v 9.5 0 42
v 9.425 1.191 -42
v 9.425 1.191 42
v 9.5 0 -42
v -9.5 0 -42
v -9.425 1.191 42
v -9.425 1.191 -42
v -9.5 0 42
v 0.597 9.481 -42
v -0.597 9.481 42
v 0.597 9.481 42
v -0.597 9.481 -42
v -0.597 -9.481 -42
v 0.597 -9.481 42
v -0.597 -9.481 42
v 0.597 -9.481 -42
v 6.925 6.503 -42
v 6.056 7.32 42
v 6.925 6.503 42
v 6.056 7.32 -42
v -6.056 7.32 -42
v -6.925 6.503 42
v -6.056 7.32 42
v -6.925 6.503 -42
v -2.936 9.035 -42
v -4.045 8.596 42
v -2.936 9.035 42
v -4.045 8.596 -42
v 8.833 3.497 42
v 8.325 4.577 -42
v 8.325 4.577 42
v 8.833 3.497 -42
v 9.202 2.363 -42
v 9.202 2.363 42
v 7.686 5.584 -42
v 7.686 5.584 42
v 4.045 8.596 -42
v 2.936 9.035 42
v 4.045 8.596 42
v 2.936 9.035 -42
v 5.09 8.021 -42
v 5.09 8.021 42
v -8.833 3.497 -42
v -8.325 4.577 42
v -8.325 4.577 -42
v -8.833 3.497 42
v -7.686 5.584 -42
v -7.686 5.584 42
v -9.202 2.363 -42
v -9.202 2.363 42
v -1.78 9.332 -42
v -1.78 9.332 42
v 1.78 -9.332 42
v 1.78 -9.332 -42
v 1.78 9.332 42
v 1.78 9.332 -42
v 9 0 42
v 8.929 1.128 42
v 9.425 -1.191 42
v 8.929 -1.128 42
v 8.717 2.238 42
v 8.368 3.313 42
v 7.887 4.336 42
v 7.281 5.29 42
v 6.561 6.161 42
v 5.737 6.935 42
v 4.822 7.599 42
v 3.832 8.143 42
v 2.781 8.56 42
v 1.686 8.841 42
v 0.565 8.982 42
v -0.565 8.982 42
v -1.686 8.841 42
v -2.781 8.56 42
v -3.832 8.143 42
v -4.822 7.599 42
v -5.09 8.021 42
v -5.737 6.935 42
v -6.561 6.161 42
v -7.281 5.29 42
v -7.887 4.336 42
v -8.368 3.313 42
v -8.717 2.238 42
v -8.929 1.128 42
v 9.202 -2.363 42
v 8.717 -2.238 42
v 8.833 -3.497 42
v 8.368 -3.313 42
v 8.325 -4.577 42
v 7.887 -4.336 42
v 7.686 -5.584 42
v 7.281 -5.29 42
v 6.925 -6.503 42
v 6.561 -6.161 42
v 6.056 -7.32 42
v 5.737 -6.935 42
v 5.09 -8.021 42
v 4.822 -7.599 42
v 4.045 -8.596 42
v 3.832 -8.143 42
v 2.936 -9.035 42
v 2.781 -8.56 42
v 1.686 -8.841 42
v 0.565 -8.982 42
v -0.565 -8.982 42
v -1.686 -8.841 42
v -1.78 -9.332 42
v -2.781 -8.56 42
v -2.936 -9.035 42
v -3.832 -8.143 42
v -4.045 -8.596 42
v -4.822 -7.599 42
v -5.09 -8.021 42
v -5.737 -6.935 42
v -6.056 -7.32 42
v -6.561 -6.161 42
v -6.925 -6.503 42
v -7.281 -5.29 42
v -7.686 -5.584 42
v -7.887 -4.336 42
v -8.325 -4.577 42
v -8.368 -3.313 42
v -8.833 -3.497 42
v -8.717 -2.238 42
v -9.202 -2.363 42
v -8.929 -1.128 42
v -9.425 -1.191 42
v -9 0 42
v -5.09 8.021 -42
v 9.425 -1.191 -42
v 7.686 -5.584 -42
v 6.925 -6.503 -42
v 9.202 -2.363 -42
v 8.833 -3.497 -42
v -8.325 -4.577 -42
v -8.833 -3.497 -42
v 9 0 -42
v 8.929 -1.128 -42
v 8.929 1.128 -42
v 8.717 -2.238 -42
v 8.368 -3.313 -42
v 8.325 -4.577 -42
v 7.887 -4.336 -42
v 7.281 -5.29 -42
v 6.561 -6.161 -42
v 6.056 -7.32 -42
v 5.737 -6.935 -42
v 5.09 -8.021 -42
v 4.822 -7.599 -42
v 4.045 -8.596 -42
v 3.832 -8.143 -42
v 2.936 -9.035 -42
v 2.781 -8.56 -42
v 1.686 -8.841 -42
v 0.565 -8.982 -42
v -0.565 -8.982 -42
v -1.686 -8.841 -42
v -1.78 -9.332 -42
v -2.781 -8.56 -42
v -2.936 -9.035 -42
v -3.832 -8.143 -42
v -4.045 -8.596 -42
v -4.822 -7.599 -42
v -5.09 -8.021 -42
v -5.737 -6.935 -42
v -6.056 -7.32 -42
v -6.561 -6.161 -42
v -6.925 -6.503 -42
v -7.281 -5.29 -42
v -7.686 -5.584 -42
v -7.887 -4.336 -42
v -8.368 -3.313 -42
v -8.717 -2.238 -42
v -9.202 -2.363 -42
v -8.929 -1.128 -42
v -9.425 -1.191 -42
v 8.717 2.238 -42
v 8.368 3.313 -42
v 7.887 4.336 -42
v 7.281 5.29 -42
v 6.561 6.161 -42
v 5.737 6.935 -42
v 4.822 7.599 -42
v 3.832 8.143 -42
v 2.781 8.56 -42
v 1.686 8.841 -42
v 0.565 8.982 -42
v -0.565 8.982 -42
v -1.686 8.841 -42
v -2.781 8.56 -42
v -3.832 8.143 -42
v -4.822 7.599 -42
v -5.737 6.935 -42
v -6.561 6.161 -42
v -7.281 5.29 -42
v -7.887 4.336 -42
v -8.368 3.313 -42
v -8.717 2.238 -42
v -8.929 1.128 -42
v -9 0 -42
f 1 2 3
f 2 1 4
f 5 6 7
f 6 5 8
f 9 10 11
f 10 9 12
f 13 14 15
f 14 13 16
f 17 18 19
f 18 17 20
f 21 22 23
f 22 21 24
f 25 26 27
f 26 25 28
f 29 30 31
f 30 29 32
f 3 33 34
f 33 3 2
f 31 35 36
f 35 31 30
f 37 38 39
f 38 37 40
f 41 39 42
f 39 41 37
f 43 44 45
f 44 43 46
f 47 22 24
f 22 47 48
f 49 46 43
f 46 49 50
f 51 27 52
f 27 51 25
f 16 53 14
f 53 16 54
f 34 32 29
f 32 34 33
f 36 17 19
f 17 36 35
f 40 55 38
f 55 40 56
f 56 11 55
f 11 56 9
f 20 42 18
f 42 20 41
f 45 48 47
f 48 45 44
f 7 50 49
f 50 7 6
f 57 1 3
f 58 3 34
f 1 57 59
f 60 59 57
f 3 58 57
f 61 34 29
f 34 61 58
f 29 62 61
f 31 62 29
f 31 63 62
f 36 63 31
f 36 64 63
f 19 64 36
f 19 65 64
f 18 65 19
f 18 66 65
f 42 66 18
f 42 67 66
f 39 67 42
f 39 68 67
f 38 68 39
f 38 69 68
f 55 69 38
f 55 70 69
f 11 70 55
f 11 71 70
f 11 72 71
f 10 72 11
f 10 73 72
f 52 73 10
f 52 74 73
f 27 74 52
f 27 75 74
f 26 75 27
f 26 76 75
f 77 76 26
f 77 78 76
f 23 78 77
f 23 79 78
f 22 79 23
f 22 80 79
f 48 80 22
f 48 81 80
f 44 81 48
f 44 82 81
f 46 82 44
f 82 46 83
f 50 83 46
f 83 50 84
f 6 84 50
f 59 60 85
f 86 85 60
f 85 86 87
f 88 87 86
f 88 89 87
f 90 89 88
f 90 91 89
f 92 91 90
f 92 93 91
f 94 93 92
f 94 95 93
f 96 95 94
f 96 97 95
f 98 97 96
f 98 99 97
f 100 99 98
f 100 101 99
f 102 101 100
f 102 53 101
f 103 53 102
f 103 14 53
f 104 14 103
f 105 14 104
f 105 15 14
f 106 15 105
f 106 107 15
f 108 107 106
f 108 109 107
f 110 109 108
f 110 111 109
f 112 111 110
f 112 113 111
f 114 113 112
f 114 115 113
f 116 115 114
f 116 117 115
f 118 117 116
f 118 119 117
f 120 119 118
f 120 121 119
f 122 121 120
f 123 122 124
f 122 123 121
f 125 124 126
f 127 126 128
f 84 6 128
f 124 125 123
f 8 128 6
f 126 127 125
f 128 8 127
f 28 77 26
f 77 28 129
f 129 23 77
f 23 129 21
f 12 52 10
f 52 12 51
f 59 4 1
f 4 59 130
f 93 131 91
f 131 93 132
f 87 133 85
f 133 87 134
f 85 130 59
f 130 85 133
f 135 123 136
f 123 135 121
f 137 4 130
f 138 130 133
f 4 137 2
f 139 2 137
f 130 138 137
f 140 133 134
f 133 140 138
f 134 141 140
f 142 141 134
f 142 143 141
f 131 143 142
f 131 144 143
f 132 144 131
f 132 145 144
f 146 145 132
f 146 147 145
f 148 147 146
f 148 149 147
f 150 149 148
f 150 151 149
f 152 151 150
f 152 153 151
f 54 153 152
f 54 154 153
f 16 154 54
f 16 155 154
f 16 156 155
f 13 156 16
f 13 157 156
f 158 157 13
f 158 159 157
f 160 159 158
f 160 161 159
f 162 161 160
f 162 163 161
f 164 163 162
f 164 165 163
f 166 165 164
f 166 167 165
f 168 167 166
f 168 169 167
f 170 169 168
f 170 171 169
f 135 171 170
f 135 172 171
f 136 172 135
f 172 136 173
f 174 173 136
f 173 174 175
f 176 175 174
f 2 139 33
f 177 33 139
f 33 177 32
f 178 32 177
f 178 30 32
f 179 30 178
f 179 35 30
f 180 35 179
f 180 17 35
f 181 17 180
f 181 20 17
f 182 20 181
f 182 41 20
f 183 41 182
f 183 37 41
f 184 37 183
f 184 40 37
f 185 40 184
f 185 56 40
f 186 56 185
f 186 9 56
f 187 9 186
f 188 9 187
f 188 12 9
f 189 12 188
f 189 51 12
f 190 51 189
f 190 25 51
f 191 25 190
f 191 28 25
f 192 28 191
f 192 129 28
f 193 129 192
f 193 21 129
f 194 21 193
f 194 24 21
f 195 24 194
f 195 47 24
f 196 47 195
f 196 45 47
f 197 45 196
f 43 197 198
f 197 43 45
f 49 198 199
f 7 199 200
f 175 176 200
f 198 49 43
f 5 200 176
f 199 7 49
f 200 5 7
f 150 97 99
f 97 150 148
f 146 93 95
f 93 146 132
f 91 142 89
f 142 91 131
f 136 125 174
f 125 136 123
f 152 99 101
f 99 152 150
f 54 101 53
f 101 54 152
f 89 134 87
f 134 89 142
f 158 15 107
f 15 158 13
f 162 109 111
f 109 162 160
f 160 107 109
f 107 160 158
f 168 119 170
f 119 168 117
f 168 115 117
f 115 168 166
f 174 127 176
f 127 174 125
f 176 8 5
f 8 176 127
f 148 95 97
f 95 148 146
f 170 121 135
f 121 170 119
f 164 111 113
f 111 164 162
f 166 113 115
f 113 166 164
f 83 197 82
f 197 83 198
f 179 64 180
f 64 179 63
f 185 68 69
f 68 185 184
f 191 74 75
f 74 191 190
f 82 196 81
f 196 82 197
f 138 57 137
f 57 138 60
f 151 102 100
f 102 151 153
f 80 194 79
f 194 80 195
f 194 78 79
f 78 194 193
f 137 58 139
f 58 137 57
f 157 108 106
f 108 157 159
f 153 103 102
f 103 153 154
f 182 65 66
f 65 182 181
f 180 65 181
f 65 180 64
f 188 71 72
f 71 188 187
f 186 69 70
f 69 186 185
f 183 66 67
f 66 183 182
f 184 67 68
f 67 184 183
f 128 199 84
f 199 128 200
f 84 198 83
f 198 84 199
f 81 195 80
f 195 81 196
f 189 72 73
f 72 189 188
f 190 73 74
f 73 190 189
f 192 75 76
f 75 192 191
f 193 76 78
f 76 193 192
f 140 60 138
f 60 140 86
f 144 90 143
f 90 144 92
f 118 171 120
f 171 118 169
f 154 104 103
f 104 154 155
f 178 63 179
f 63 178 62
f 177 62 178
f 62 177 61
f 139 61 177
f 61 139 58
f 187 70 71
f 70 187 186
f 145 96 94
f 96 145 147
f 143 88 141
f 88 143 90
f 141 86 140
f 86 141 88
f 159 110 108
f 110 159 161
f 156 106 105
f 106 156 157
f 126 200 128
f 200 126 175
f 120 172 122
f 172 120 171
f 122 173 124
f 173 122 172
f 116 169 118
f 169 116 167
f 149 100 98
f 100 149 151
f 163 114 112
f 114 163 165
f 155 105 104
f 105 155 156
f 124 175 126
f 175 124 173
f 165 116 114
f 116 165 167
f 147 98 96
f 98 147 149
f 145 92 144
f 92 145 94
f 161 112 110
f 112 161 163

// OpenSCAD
$fn = 50;


difference() {
	union() {
		translate(v = [0, 0, -42.0000000000]) {
			cylinder(h = 84, r = 9.5000000000);
		}
	}
	union() {
		translate(v = [0, 0, -100.0000000000]) {
			cylinder(h = 200, r = 9);
		}
	}
}
